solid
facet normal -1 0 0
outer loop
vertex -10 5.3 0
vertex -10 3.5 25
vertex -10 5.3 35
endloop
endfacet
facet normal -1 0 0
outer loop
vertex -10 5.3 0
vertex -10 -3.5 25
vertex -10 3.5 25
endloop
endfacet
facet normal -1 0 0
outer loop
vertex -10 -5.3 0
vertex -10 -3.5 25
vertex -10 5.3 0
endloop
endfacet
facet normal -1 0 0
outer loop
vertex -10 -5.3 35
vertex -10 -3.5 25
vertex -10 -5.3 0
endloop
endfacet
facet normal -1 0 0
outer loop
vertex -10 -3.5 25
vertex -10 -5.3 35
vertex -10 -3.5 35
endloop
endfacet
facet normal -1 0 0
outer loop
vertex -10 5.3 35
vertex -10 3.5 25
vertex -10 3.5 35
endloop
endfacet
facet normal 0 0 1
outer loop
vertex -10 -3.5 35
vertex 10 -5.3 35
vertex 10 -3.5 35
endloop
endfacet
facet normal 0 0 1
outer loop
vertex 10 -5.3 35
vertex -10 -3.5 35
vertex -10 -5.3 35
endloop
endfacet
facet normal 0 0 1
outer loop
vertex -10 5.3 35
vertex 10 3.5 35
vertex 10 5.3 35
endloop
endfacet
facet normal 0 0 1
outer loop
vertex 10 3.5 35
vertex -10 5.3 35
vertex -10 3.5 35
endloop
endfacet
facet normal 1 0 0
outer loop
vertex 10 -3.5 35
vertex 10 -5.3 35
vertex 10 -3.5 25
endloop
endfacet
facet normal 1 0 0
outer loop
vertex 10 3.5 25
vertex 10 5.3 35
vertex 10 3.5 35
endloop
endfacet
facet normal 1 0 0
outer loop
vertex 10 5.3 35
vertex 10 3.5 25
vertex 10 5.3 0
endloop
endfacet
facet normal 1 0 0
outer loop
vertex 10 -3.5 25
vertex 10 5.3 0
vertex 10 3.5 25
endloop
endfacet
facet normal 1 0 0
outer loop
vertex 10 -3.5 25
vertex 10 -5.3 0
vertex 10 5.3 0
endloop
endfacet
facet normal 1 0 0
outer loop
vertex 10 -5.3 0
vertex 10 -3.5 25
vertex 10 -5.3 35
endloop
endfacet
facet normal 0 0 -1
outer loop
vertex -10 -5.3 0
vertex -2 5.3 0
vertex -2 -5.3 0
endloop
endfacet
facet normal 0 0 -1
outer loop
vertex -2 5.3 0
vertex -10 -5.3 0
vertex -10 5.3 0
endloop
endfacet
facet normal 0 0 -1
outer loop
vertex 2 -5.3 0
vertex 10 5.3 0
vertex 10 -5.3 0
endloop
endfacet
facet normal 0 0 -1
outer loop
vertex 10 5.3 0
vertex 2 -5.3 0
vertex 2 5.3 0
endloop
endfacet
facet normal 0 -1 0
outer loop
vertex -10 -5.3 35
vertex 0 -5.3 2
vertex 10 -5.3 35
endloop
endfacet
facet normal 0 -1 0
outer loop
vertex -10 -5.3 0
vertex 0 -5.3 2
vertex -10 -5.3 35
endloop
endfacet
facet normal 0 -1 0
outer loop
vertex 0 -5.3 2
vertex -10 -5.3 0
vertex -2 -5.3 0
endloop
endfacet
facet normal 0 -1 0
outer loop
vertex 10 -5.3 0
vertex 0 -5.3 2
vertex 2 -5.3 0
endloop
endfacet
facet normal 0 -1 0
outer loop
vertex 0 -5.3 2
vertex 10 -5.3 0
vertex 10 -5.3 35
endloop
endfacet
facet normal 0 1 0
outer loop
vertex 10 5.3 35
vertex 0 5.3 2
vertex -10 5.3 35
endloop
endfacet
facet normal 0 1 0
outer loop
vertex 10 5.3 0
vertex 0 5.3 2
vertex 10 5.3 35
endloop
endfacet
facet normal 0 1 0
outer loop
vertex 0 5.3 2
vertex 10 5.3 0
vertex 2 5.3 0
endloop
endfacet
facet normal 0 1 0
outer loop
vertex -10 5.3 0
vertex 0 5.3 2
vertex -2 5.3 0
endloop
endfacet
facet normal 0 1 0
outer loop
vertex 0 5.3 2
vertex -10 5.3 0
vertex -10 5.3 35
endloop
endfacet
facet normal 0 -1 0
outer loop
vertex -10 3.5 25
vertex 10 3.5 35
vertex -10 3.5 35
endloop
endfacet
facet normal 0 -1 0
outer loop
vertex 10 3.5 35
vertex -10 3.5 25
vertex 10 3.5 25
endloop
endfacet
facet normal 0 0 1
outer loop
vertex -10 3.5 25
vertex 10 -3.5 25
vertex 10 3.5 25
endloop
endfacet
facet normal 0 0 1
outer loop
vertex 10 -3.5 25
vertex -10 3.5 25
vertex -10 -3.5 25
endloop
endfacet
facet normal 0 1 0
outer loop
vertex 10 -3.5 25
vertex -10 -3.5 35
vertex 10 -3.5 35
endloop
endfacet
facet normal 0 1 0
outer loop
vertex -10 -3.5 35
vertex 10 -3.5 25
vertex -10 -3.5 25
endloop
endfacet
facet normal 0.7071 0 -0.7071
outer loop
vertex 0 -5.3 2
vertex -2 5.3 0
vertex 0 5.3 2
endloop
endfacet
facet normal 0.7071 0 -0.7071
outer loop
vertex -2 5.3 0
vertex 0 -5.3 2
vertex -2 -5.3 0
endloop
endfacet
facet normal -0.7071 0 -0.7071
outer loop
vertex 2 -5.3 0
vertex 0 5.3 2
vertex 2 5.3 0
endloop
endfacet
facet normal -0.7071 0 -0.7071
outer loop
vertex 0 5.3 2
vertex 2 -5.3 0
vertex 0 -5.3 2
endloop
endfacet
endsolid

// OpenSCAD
// -*- mode: SCAD ; c-file-style: "ellemtel" ; coding: utf-8 -*-
//
// NN
//
// © 2018 Roland Sieker <ospalh@gmail.com>
// Licence: CC-BY-SA 4.0

a = 25;
b = 7;
c = 20;
d = 4;
h= 10;

// Set this to “render” and click on “Create Thing” when done with the setup.
preview = 1; // [0:render, 1:preview]



/* [Hidden] */

// Done with the customizer

// *******************************************************
// Extra parameters. These can be changed reasonably safely.


w = 1.8;  // Wall width
p = 1.2;  // Bottom, top plate height
cs = 0.4;  // Clearance
angle = 60; // Overhangs much below 60° are a problem for me

// *******************************************************
// Some shortcuts. These shouldn’t be changed

tau = 2 * PI;  // π is still wrong. τ = ⌀ ÷ r

xy_factor = 1/tan(angle);
// To get from a height to a horizontal width inclined correctly
z_factor = tan(angle);  // The other way around

de = d/sqrt(2);

some_distance = 50;
ms = 0.01;  // Muggeseggele.

// fn for differently sized objects and fs, fa; all for preview or rendering.
pna = 40;
pnb = 15;
pa = 5;
ps = 1;
rna = 180;
rnb = 30;
ra = 1;
rs = 0.1;
function na() = (preview) ? pna : rna;
function nb() = (preview) ? pnb : rnb;
$fs = (preview) ? ps : rs;
$fa = (preview) ? pa : ra;

// *******************************************************
// End setup



// *******************************************************
// Generate the parts

blumentopfding();

module blumentopfding()
{
   difference()
   {
      translate([0,0,a/2+h/2])
      {
         cube([c, b+2*w, a+h], center=true);
      }
      translate([-c/2-ms, -b/2, a])
      {
         cube([c+2*ms, b, a+h]);
      }
      rotate([0, 45,0])
      translate([-de/2, -b/2-w-ms, -de/2])
      {
         #cube([de, b+2*w+2*ms, de]);
      }
   }
}
